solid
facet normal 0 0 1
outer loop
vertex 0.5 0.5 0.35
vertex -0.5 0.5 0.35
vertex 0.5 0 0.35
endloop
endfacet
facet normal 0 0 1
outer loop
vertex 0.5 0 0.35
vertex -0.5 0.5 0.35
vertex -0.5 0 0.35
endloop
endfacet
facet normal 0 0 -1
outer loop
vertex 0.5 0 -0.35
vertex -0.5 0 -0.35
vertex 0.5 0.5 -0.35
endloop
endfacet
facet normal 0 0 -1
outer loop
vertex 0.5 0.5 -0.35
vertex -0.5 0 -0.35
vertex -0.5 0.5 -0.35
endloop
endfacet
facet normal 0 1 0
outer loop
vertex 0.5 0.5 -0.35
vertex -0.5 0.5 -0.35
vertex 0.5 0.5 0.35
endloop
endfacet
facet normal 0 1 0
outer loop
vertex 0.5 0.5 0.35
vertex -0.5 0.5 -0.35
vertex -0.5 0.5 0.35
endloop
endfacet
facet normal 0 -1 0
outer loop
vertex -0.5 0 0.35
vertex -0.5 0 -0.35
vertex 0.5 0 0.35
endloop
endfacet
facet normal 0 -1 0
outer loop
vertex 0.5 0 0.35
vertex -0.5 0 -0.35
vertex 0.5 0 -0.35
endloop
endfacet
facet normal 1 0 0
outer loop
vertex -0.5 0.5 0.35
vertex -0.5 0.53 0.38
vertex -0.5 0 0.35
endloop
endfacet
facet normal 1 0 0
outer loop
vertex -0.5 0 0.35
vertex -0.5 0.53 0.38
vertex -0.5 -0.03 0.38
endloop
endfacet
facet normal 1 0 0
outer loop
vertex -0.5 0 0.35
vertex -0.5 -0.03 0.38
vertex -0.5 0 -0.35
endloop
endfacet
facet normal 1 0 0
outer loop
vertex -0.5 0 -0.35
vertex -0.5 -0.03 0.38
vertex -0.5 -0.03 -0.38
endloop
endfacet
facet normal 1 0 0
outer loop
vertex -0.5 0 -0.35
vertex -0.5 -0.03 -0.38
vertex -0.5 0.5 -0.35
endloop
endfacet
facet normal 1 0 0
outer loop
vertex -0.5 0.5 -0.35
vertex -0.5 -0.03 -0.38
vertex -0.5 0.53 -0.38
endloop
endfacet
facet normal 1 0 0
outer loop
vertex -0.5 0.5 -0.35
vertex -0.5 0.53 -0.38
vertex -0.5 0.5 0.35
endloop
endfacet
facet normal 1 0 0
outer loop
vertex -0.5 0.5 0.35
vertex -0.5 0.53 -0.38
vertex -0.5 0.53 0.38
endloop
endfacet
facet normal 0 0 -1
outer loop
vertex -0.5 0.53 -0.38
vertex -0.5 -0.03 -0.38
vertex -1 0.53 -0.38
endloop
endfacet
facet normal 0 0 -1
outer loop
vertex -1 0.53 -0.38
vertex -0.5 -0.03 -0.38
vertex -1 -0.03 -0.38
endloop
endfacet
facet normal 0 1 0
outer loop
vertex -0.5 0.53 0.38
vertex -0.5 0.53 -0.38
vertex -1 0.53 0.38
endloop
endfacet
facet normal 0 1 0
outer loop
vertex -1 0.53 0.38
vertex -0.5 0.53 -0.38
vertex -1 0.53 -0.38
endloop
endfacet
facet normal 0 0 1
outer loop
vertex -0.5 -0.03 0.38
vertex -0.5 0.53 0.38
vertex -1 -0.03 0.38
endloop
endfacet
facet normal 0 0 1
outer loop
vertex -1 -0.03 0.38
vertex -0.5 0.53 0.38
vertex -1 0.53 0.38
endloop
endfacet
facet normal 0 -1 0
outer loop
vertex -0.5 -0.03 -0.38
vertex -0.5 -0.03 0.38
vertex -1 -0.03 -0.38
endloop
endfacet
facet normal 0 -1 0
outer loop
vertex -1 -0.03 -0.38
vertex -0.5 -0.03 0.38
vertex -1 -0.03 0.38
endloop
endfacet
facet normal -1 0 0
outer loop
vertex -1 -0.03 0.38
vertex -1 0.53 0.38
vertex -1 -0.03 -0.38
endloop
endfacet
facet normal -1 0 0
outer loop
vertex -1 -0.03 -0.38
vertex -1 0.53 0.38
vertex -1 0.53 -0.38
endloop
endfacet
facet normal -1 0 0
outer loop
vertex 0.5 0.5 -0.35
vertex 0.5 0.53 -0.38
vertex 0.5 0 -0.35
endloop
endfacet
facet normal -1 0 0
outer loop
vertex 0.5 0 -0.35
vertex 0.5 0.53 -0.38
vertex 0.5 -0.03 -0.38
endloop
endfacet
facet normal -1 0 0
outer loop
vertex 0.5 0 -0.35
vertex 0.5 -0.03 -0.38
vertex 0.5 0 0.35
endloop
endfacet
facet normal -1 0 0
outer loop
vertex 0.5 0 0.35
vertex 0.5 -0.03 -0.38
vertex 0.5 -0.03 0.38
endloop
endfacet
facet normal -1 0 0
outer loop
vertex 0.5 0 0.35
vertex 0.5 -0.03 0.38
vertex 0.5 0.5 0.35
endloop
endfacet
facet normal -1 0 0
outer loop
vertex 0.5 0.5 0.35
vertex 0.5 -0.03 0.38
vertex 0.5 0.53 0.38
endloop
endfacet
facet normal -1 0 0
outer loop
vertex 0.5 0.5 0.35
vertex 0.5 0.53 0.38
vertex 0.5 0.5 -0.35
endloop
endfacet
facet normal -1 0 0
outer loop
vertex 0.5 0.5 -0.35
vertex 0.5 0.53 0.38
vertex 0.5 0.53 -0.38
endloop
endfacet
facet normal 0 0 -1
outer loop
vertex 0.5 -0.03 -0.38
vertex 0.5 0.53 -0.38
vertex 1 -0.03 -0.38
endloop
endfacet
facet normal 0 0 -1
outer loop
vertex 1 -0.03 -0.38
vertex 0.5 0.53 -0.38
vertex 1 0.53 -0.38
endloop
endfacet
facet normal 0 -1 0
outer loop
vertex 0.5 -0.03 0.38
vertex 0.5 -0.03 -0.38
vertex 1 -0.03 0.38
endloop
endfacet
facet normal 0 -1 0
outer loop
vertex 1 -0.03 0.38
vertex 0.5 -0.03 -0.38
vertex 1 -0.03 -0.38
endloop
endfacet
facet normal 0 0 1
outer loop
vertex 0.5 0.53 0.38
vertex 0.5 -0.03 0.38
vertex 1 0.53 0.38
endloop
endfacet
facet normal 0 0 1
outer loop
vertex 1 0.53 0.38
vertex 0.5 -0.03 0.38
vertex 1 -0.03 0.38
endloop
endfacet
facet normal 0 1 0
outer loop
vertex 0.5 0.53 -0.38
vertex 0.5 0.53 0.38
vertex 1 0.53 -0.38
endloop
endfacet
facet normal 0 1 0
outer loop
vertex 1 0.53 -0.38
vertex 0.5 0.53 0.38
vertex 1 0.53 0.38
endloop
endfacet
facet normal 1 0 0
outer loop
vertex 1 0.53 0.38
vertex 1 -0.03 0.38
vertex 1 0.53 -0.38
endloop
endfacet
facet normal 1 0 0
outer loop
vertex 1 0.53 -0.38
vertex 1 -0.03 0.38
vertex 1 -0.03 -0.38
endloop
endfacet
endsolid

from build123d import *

# Parameters (mm, degrees)
SKETCH1_W           = 2
SKETCH1_H           = 0.7
BOSS_EXTRUDE1_DEPTH = 0.5
SKETCH2_W           = 0.76
SKETCH2_H           = 0.56
BOSS_EXTRUDE2_DEPTH = 0.5


with BuildPart() as part:
    # Sketch1 → Boss-Extrude1 (new body)
    with BuildSketch(Plane(origin=(0, 0, 0), x_dir=(1, 0, 0), z_dir=(0, 1, 0))):
        Rectangle(SKETCH1_W, SKETCH1_H)
    extrude(amount=BOSS_EXTRUDE1_DEPTH)

    # Sketch2 → Boss-Extrude2 (add)
    with BuildSketch(Plane.ZY.offset(1)):
        with Locations((0, 0.25)):
            Rectangle(SKETCH2_W, SKETCH2_H)
    boss_extrude2 = extrude(amount=-BOSS_EXTRUDE2_DEPTH)

    # Mirror1: Boss-Extrude2 across plane
    add(boss_extrude2.mirror(Plane(origin=(0, 0, 0), x_dir=(0, 0, 1), z_dir=(1, 0, 0))))


solid = part.part
